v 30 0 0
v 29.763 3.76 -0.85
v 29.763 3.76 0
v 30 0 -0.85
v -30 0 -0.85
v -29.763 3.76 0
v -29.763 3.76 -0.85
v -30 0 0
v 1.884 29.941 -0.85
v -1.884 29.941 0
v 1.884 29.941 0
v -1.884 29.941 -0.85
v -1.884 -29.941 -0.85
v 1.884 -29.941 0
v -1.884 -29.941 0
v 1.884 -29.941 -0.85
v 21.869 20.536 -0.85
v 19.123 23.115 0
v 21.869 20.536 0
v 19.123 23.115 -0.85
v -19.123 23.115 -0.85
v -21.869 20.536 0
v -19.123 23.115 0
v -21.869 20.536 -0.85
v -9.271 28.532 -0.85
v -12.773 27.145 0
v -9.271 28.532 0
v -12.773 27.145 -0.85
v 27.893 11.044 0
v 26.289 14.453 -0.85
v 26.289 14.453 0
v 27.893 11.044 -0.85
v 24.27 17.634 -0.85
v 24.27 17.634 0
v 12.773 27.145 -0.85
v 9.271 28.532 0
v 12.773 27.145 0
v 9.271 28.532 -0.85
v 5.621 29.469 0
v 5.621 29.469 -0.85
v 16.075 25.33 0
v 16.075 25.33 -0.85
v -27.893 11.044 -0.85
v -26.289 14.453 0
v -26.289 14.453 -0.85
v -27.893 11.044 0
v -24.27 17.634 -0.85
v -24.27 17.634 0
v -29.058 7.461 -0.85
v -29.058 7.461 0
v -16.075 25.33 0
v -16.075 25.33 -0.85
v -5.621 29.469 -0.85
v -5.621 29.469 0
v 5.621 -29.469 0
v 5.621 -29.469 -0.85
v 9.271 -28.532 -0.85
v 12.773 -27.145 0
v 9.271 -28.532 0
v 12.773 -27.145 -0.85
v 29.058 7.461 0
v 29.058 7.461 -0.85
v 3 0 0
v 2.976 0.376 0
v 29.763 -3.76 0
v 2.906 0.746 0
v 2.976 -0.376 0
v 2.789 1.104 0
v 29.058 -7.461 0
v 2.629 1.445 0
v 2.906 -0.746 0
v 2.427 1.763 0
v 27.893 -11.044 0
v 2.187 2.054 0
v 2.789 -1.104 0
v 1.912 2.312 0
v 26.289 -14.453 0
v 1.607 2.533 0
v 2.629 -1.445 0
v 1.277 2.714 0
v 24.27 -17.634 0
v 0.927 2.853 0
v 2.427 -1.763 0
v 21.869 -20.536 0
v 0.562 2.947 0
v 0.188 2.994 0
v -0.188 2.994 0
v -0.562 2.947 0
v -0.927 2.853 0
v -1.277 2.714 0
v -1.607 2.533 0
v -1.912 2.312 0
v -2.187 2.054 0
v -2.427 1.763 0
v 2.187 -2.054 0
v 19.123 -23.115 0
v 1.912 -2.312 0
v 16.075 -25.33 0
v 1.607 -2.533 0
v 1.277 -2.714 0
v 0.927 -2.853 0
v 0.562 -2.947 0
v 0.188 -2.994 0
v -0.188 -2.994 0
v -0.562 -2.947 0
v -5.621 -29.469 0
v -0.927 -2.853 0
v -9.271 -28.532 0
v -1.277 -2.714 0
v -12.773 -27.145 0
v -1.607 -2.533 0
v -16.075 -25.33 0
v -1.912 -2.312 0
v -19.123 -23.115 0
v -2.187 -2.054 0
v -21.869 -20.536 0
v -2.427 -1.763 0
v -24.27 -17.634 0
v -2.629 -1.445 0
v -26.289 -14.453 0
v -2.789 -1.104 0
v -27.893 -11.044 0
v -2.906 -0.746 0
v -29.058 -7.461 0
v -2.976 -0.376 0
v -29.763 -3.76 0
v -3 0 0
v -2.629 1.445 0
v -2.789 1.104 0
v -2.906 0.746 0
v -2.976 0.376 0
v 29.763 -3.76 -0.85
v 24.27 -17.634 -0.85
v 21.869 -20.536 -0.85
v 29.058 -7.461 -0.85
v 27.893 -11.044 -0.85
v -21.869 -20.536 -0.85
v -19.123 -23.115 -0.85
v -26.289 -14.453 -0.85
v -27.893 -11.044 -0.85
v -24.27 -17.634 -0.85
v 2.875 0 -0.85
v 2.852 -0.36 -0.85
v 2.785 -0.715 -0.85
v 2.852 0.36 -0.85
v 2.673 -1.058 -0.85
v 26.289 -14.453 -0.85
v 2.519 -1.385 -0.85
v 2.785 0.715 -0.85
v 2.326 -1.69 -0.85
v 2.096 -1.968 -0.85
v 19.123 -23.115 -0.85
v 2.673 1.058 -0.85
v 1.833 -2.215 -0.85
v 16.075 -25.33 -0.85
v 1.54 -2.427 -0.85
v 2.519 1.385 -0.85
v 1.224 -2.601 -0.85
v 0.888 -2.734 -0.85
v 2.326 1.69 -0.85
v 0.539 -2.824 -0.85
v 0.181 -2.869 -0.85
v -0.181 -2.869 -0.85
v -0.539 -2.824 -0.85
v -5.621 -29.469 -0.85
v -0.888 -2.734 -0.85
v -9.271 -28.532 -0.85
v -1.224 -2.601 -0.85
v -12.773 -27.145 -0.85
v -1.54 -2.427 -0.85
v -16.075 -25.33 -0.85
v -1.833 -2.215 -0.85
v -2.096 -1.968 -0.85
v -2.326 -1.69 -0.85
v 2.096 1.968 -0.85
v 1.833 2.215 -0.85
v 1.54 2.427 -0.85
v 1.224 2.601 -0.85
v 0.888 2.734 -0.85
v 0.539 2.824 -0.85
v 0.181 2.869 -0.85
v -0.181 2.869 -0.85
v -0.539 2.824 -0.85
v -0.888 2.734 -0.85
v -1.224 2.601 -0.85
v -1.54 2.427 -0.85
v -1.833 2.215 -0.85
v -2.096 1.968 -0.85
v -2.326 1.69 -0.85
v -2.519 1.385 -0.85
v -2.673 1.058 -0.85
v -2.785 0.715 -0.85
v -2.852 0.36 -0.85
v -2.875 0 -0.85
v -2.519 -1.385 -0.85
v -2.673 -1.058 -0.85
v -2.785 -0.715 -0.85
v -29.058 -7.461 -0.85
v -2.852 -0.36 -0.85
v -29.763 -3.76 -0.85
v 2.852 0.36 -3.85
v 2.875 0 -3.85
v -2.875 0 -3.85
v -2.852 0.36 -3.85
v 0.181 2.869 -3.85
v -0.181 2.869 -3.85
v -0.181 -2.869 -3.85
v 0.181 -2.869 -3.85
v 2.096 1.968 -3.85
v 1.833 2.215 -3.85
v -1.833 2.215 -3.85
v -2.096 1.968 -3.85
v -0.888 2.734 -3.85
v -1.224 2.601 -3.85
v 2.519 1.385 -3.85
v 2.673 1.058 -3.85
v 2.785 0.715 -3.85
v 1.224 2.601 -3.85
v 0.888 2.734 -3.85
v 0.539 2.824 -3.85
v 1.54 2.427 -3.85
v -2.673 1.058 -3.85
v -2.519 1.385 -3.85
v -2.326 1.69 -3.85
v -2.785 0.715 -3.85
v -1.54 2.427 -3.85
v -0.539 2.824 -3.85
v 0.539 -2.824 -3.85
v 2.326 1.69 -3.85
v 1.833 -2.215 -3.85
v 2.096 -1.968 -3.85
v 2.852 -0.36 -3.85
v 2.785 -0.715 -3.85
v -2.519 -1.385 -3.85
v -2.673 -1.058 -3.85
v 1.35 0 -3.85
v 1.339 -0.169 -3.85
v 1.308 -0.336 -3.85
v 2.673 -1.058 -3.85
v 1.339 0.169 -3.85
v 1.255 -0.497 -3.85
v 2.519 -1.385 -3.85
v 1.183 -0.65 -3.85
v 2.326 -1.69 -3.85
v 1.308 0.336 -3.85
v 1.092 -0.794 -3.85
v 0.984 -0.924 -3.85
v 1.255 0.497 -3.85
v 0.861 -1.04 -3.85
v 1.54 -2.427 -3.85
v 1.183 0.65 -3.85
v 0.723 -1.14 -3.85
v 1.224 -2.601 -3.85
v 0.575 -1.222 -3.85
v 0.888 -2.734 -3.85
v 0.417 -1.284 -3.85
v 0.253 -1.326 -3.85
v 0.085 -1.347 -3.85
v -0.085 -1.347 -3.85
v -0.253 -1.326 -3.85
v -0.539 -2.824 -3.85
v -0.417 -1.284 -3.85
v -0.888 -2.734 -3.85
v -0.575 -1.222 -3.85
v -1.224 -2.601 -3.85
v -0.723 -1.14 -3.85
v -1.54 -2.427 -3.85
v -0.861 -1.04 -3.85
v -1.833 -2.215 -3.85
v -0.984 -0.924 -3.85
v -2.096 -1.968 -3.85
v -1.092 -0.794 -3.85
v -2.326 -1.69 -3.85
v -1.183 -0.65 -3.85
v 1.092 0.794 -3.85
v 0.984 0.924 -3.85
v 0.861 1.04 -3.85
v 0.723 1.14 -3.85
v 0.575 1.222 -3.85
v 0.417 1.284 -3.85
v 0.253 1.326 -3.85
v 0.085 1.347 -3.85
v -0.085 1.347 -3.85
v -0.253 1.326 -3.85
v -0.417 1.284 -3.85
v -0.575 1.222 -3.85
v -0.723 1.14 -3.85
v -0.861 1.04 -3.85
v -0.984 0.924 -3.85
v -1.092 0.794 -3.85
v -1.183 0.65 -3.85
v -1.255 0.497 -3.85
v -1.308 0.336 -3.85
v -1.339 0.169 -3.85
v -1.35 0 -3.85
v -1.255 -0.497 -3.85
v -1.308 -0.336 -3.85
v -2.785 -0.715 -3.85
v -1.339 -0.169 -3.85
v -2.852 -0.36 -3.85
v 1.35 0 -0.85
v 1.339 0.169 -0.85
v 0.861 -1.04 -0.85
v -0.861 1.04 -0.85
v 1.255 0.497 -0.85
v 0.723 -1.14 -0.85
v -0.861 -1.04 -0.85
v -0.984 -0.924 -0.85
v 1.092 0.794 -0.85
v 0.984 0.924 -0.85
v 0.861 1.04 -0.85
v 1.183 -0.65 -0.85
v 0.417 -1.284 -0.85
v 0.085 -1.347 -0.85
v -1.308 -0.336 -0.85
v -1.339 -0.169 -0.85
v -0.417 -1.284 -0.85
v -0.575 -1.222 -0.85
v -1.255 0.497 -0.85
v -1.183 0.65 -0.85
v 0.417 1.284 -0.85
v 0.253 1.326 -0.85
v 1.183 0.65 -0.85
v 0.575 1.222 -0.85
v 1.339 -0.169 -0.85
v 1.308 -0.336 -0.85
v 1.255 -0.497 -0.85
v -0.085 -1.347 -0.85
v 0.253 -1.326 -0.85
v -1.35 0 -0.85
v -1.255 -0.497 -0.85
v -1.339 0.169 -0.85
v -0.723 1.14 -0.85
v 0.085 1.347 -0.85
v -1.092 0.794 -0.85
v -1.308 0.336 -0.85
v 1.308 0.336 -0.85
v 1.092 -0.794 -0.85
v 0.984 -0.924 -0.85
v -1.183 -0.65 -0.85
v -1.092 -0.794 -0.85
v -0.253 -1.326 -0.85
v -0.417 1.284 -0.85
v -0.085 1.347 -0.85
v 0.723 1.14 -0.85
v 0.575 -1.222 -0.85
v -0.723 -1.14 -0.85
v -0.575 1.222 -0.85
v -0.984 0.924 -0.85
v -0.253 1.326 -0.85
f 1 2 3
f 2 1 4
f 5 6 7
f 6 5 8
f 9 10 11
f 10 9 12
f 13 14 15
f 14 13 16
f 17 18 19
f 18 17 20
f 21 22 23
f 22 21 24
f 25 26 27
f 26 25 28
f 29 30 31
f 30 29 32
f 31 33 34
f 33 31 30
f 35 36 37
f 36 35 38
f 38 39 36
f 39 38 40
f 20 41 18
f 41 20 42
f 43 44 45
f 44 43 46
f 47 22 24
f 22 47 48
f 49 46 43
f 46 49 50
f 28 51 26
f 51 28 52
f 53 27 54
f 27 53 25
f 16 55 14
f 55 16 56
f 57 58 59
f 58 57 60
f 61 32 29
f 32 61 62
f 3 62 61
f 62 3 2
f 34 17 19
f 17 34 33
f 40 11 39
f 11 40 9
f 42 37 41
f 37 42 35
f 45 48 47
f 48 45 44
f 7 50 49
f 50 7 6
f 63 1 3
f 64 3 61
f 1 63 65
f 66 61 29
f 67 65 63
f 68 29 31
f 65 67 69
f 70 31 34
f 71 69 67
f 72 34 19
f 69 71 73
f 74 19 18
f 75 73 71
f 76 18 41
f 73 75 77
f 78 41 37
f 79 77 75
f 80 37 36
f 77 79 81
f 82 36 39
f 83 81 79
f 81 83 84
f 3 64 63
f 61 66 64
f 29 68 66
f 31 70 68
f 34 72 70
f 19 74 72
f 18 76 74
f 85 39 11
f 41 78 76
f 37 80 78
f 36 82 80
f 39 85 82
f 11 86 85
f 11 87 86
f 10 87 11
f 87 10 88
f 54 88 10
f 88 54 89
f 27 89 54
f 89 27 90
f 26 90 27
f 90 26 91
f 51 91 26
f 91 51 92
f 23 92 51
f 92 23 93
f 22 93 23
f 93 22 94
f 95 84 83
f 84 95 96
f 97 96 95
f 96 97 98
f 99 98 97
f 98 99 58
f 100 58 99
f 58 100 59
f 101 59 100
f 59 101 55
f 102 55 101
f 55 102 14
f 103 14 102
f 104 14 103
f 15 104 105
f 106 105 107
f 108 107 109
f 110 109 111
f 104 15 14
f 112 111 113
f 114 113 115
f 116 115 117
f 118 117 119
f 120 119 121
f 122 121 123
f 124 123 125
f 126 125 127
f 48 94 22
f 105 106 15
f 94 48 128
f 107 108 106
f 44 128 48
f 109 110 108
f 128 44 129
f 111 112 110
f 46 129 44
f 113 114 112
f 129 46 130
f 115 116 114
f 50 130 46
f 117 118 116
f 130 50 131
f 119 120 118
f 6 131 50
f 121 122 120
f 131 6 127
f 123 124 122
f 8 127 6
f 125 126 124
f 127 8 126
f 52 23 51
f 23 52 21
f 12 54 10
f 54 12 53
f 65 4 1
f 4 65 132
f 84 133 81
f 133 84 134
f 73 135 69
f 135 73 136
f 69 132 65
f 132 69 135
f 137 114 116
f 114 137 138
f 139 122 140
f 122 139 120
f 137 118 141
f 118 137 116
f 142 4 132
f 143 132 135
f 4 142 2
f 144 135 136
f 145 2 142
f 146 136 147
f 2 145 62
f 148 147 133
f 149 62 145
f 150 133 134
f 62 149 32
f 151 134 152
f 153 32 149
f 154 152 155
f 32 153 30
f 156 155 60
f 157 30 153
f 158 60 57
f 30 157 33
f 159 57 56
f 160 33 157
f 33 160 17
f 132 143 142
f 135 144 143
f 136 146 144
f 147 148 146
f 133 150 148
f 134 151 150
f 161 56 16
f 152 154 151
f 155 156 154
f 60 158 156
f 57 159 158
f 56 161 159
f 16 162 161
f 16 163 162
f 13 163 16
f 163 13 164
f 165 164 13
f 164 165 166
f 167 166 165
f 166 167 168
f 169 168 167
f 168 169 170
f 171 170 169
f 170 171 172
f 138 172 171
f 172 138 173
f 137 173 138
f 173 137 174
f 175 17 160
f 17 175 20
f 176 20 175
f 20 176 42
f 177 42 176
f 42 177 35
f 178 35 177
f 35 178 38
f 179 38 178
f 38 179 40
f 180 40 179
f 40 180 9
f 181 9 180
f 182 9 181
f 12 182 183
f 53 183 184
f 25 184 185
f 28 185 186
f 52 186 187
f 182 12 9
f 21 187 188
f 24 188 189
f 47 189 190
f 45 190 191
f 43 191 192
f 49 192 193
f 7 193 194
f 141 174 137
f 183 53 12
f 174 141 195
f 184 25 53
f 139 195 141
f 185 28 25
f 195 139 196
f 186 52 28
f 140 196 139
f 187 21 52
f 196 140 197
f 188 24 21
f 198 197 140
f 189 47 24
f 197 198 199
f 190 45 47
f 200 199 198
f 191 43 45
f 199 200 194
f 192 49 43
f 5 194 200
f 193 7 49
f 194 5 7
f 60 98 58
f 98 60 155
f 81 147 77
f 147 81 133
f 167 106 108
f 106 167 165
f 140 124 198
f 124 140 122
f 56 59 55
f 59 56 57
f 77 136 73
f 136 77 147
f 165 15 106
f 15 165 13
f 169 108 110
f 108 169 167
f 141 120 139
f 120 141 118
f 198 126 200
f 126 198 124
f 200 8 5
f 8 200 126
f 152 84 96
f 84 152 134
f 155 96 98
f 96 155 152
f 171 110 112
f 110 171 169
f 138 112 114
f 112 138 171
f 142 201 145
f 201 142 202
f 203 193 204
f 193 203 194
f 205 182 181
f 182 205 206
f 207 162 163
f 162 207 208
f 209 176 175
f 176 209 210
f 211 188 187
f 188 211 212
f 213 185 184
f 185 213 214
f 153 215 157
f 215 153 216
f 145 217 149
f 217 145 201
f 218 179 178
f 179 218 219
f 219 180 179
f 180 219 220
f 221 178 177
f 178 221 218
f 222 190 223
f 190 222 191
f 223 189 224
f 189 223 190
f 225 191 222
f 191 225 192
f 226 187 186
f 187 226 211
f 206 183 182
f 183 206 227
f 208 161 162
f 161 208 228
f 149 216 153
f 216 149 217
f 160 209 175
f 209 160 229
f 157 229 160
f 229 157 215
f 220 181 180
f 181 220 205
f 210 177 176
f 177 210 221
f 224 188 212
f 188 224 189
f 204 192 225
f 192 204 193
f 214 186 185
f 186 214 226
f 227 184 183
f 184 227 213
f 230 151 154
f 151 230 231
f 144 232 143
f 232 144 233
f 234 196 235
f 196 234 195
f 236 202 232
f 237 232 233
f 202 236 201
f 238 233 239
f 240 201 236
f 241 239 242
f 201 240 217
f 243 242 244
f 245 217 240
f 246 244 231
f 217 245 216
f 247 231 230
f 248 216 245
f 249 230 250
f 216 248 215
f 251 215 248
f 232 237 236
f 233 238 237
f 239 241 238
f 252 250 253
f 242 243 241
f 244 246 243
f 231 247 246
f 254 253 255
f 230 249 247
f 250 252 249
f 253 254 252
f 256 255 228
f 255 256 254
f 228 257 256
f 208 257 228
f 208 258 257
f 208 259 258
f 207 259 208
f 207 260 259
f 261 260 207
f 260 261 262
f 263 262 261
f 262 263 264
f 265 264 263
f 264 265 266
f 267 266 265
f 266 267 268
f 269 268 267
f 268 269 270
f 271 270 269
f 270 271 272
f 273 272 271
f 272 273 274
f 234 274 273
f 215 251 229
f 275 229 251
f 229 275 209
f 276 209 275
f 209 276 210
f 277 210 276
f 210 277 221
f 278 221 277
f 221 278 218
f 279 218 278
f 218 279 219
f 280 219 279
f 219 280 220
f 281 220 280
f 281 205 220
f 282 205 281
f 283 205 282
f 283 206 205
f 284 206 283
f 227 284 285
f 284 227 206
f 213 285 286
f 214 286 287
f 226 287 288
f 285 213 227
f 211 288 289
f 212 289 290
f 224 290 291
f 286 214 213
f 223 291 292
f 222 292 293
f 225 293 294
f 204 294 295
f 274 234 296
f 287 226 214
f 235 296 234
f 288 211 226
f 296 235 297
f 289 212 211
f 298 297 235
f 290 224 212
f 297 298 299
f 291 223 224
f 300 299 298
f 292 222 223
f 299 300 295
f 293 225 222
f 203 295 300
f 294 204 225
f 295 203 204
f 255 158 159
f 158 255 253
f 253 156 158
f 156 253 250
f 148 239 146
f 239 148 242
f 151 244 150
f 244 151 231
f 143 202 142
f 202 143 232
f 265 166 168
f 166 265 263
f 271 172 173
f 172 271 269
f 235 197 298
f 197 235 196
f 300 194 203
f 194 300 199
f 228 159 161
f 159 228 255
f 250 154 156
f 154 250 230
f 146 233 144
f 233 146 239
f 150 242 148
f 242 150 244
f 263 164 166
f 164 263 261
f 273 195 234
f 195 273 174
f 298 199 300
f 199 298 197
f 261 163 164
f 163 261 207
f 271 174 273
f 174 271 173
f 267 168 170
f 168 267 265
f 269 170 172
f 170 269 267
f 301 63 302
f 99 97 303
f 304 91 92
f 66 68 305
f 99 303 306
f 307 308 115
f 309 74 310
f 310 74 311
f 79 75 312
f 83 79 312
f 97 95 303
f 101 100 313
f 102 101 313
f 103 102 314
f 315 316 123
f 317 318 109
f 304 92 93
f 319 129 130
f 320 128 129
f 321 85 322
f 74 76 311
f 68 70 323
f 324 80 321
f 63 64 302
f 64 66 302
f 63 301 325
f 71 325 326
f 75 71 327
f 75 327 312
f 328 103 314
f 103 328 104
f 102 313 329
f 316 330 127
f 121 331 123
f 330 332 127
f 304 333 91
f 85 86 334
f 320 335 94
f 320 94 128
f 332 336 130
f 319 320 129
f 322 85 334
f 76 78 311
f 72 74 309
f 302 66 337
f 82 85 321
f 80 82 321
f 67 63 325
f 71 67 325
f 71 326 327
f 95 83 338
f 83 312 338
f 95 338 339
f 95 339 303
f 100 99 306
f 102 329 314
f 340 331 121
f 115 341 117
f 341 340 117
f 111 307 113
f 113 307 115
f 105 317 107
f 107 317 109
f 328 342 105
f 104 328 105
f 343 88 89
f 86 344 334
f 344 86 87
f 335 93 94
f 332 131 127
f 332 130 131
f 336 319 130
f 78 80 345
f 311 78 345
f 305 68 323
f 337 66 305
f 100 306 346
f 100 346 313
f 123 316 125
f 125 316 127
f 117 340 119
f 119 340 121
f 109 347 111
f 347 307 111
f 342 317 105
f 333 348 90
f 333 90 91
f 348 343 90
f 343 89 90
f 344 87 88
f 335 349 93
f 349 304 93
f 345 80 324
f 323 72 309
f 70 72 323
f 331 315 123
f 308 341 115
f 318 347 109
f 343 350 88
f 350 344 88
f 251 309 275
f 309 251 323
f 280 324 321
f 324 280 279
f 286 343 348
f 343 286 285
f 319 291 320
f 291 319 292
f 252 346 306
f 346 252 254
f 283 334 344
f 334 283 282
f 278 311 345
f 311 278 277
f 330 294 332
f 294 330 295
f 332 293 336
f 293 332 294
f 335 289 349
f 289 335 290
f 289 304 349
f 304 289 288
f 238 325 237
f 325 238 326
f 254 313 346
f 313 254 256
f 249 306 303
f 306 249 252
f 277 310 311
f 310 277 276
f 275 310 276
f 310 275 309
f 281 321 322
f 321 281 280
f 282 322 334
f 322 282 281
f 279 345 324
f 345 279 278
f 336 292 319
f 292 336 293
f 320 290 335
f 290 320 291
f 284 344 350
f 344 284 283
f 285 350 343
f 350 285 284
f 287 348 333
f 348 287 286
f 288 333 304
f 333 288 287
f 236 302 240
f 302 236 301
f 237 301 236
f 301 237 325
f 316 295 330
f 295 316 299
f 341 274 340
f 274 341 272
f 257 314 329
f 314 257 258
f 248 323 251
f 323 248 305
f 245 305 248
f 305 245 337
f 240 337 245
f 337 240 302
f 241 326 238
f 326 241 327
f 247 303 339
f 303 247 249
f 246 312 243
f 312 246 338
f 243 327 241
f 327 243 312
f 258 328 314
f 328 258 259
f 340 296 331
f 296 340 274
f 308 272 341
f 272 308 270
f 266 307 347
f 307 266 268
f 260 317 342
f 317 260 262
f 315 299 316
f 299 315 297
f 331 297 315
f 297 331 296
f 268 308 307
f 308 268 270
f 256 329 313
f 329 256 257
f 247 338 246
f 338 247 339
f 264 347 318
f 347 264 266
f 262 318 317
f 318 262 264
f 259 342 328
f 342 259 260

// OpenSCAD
$fn = 50;


difference() {
	union() {
		translate(v = [0, 0, -0.8500000000]) {
			cylinder(h = 0.8500000000, r = 30.0000000000);
		}
		translate(v = [0, 0, -3.8500000000]) {
			cylinder(h = 3.8500000000, r = 2.8750000000);
		}
	}
	union() {
		translate(v = [0, 0, 0]) {
			rotate(a = [0, 0, 0]) {
				difference() {
					union() {
						translate(v = [0, 0, -3.8500000000]) {
							cylinder(h = 3.8500000000, r = 1.0000000000);
						}
						translate(v = [0, 0, -0.8500000000]) {
							cylinder(h = 0.8500000000, r1 = 1.3500000000, r2 = 3.0000000000);
						}
						translate(v = [0, 0, -3.8500000000]) {
							cylinder(h = 3.8500000000, r = 1.3500000000);
						}
						translate(v = [0, 0, -3.8500000000]) {
							cylinder(h = 3.8500000000, r = 1.0000000000);
						}
					}
					union();
				}
			}
		}
	}
}
